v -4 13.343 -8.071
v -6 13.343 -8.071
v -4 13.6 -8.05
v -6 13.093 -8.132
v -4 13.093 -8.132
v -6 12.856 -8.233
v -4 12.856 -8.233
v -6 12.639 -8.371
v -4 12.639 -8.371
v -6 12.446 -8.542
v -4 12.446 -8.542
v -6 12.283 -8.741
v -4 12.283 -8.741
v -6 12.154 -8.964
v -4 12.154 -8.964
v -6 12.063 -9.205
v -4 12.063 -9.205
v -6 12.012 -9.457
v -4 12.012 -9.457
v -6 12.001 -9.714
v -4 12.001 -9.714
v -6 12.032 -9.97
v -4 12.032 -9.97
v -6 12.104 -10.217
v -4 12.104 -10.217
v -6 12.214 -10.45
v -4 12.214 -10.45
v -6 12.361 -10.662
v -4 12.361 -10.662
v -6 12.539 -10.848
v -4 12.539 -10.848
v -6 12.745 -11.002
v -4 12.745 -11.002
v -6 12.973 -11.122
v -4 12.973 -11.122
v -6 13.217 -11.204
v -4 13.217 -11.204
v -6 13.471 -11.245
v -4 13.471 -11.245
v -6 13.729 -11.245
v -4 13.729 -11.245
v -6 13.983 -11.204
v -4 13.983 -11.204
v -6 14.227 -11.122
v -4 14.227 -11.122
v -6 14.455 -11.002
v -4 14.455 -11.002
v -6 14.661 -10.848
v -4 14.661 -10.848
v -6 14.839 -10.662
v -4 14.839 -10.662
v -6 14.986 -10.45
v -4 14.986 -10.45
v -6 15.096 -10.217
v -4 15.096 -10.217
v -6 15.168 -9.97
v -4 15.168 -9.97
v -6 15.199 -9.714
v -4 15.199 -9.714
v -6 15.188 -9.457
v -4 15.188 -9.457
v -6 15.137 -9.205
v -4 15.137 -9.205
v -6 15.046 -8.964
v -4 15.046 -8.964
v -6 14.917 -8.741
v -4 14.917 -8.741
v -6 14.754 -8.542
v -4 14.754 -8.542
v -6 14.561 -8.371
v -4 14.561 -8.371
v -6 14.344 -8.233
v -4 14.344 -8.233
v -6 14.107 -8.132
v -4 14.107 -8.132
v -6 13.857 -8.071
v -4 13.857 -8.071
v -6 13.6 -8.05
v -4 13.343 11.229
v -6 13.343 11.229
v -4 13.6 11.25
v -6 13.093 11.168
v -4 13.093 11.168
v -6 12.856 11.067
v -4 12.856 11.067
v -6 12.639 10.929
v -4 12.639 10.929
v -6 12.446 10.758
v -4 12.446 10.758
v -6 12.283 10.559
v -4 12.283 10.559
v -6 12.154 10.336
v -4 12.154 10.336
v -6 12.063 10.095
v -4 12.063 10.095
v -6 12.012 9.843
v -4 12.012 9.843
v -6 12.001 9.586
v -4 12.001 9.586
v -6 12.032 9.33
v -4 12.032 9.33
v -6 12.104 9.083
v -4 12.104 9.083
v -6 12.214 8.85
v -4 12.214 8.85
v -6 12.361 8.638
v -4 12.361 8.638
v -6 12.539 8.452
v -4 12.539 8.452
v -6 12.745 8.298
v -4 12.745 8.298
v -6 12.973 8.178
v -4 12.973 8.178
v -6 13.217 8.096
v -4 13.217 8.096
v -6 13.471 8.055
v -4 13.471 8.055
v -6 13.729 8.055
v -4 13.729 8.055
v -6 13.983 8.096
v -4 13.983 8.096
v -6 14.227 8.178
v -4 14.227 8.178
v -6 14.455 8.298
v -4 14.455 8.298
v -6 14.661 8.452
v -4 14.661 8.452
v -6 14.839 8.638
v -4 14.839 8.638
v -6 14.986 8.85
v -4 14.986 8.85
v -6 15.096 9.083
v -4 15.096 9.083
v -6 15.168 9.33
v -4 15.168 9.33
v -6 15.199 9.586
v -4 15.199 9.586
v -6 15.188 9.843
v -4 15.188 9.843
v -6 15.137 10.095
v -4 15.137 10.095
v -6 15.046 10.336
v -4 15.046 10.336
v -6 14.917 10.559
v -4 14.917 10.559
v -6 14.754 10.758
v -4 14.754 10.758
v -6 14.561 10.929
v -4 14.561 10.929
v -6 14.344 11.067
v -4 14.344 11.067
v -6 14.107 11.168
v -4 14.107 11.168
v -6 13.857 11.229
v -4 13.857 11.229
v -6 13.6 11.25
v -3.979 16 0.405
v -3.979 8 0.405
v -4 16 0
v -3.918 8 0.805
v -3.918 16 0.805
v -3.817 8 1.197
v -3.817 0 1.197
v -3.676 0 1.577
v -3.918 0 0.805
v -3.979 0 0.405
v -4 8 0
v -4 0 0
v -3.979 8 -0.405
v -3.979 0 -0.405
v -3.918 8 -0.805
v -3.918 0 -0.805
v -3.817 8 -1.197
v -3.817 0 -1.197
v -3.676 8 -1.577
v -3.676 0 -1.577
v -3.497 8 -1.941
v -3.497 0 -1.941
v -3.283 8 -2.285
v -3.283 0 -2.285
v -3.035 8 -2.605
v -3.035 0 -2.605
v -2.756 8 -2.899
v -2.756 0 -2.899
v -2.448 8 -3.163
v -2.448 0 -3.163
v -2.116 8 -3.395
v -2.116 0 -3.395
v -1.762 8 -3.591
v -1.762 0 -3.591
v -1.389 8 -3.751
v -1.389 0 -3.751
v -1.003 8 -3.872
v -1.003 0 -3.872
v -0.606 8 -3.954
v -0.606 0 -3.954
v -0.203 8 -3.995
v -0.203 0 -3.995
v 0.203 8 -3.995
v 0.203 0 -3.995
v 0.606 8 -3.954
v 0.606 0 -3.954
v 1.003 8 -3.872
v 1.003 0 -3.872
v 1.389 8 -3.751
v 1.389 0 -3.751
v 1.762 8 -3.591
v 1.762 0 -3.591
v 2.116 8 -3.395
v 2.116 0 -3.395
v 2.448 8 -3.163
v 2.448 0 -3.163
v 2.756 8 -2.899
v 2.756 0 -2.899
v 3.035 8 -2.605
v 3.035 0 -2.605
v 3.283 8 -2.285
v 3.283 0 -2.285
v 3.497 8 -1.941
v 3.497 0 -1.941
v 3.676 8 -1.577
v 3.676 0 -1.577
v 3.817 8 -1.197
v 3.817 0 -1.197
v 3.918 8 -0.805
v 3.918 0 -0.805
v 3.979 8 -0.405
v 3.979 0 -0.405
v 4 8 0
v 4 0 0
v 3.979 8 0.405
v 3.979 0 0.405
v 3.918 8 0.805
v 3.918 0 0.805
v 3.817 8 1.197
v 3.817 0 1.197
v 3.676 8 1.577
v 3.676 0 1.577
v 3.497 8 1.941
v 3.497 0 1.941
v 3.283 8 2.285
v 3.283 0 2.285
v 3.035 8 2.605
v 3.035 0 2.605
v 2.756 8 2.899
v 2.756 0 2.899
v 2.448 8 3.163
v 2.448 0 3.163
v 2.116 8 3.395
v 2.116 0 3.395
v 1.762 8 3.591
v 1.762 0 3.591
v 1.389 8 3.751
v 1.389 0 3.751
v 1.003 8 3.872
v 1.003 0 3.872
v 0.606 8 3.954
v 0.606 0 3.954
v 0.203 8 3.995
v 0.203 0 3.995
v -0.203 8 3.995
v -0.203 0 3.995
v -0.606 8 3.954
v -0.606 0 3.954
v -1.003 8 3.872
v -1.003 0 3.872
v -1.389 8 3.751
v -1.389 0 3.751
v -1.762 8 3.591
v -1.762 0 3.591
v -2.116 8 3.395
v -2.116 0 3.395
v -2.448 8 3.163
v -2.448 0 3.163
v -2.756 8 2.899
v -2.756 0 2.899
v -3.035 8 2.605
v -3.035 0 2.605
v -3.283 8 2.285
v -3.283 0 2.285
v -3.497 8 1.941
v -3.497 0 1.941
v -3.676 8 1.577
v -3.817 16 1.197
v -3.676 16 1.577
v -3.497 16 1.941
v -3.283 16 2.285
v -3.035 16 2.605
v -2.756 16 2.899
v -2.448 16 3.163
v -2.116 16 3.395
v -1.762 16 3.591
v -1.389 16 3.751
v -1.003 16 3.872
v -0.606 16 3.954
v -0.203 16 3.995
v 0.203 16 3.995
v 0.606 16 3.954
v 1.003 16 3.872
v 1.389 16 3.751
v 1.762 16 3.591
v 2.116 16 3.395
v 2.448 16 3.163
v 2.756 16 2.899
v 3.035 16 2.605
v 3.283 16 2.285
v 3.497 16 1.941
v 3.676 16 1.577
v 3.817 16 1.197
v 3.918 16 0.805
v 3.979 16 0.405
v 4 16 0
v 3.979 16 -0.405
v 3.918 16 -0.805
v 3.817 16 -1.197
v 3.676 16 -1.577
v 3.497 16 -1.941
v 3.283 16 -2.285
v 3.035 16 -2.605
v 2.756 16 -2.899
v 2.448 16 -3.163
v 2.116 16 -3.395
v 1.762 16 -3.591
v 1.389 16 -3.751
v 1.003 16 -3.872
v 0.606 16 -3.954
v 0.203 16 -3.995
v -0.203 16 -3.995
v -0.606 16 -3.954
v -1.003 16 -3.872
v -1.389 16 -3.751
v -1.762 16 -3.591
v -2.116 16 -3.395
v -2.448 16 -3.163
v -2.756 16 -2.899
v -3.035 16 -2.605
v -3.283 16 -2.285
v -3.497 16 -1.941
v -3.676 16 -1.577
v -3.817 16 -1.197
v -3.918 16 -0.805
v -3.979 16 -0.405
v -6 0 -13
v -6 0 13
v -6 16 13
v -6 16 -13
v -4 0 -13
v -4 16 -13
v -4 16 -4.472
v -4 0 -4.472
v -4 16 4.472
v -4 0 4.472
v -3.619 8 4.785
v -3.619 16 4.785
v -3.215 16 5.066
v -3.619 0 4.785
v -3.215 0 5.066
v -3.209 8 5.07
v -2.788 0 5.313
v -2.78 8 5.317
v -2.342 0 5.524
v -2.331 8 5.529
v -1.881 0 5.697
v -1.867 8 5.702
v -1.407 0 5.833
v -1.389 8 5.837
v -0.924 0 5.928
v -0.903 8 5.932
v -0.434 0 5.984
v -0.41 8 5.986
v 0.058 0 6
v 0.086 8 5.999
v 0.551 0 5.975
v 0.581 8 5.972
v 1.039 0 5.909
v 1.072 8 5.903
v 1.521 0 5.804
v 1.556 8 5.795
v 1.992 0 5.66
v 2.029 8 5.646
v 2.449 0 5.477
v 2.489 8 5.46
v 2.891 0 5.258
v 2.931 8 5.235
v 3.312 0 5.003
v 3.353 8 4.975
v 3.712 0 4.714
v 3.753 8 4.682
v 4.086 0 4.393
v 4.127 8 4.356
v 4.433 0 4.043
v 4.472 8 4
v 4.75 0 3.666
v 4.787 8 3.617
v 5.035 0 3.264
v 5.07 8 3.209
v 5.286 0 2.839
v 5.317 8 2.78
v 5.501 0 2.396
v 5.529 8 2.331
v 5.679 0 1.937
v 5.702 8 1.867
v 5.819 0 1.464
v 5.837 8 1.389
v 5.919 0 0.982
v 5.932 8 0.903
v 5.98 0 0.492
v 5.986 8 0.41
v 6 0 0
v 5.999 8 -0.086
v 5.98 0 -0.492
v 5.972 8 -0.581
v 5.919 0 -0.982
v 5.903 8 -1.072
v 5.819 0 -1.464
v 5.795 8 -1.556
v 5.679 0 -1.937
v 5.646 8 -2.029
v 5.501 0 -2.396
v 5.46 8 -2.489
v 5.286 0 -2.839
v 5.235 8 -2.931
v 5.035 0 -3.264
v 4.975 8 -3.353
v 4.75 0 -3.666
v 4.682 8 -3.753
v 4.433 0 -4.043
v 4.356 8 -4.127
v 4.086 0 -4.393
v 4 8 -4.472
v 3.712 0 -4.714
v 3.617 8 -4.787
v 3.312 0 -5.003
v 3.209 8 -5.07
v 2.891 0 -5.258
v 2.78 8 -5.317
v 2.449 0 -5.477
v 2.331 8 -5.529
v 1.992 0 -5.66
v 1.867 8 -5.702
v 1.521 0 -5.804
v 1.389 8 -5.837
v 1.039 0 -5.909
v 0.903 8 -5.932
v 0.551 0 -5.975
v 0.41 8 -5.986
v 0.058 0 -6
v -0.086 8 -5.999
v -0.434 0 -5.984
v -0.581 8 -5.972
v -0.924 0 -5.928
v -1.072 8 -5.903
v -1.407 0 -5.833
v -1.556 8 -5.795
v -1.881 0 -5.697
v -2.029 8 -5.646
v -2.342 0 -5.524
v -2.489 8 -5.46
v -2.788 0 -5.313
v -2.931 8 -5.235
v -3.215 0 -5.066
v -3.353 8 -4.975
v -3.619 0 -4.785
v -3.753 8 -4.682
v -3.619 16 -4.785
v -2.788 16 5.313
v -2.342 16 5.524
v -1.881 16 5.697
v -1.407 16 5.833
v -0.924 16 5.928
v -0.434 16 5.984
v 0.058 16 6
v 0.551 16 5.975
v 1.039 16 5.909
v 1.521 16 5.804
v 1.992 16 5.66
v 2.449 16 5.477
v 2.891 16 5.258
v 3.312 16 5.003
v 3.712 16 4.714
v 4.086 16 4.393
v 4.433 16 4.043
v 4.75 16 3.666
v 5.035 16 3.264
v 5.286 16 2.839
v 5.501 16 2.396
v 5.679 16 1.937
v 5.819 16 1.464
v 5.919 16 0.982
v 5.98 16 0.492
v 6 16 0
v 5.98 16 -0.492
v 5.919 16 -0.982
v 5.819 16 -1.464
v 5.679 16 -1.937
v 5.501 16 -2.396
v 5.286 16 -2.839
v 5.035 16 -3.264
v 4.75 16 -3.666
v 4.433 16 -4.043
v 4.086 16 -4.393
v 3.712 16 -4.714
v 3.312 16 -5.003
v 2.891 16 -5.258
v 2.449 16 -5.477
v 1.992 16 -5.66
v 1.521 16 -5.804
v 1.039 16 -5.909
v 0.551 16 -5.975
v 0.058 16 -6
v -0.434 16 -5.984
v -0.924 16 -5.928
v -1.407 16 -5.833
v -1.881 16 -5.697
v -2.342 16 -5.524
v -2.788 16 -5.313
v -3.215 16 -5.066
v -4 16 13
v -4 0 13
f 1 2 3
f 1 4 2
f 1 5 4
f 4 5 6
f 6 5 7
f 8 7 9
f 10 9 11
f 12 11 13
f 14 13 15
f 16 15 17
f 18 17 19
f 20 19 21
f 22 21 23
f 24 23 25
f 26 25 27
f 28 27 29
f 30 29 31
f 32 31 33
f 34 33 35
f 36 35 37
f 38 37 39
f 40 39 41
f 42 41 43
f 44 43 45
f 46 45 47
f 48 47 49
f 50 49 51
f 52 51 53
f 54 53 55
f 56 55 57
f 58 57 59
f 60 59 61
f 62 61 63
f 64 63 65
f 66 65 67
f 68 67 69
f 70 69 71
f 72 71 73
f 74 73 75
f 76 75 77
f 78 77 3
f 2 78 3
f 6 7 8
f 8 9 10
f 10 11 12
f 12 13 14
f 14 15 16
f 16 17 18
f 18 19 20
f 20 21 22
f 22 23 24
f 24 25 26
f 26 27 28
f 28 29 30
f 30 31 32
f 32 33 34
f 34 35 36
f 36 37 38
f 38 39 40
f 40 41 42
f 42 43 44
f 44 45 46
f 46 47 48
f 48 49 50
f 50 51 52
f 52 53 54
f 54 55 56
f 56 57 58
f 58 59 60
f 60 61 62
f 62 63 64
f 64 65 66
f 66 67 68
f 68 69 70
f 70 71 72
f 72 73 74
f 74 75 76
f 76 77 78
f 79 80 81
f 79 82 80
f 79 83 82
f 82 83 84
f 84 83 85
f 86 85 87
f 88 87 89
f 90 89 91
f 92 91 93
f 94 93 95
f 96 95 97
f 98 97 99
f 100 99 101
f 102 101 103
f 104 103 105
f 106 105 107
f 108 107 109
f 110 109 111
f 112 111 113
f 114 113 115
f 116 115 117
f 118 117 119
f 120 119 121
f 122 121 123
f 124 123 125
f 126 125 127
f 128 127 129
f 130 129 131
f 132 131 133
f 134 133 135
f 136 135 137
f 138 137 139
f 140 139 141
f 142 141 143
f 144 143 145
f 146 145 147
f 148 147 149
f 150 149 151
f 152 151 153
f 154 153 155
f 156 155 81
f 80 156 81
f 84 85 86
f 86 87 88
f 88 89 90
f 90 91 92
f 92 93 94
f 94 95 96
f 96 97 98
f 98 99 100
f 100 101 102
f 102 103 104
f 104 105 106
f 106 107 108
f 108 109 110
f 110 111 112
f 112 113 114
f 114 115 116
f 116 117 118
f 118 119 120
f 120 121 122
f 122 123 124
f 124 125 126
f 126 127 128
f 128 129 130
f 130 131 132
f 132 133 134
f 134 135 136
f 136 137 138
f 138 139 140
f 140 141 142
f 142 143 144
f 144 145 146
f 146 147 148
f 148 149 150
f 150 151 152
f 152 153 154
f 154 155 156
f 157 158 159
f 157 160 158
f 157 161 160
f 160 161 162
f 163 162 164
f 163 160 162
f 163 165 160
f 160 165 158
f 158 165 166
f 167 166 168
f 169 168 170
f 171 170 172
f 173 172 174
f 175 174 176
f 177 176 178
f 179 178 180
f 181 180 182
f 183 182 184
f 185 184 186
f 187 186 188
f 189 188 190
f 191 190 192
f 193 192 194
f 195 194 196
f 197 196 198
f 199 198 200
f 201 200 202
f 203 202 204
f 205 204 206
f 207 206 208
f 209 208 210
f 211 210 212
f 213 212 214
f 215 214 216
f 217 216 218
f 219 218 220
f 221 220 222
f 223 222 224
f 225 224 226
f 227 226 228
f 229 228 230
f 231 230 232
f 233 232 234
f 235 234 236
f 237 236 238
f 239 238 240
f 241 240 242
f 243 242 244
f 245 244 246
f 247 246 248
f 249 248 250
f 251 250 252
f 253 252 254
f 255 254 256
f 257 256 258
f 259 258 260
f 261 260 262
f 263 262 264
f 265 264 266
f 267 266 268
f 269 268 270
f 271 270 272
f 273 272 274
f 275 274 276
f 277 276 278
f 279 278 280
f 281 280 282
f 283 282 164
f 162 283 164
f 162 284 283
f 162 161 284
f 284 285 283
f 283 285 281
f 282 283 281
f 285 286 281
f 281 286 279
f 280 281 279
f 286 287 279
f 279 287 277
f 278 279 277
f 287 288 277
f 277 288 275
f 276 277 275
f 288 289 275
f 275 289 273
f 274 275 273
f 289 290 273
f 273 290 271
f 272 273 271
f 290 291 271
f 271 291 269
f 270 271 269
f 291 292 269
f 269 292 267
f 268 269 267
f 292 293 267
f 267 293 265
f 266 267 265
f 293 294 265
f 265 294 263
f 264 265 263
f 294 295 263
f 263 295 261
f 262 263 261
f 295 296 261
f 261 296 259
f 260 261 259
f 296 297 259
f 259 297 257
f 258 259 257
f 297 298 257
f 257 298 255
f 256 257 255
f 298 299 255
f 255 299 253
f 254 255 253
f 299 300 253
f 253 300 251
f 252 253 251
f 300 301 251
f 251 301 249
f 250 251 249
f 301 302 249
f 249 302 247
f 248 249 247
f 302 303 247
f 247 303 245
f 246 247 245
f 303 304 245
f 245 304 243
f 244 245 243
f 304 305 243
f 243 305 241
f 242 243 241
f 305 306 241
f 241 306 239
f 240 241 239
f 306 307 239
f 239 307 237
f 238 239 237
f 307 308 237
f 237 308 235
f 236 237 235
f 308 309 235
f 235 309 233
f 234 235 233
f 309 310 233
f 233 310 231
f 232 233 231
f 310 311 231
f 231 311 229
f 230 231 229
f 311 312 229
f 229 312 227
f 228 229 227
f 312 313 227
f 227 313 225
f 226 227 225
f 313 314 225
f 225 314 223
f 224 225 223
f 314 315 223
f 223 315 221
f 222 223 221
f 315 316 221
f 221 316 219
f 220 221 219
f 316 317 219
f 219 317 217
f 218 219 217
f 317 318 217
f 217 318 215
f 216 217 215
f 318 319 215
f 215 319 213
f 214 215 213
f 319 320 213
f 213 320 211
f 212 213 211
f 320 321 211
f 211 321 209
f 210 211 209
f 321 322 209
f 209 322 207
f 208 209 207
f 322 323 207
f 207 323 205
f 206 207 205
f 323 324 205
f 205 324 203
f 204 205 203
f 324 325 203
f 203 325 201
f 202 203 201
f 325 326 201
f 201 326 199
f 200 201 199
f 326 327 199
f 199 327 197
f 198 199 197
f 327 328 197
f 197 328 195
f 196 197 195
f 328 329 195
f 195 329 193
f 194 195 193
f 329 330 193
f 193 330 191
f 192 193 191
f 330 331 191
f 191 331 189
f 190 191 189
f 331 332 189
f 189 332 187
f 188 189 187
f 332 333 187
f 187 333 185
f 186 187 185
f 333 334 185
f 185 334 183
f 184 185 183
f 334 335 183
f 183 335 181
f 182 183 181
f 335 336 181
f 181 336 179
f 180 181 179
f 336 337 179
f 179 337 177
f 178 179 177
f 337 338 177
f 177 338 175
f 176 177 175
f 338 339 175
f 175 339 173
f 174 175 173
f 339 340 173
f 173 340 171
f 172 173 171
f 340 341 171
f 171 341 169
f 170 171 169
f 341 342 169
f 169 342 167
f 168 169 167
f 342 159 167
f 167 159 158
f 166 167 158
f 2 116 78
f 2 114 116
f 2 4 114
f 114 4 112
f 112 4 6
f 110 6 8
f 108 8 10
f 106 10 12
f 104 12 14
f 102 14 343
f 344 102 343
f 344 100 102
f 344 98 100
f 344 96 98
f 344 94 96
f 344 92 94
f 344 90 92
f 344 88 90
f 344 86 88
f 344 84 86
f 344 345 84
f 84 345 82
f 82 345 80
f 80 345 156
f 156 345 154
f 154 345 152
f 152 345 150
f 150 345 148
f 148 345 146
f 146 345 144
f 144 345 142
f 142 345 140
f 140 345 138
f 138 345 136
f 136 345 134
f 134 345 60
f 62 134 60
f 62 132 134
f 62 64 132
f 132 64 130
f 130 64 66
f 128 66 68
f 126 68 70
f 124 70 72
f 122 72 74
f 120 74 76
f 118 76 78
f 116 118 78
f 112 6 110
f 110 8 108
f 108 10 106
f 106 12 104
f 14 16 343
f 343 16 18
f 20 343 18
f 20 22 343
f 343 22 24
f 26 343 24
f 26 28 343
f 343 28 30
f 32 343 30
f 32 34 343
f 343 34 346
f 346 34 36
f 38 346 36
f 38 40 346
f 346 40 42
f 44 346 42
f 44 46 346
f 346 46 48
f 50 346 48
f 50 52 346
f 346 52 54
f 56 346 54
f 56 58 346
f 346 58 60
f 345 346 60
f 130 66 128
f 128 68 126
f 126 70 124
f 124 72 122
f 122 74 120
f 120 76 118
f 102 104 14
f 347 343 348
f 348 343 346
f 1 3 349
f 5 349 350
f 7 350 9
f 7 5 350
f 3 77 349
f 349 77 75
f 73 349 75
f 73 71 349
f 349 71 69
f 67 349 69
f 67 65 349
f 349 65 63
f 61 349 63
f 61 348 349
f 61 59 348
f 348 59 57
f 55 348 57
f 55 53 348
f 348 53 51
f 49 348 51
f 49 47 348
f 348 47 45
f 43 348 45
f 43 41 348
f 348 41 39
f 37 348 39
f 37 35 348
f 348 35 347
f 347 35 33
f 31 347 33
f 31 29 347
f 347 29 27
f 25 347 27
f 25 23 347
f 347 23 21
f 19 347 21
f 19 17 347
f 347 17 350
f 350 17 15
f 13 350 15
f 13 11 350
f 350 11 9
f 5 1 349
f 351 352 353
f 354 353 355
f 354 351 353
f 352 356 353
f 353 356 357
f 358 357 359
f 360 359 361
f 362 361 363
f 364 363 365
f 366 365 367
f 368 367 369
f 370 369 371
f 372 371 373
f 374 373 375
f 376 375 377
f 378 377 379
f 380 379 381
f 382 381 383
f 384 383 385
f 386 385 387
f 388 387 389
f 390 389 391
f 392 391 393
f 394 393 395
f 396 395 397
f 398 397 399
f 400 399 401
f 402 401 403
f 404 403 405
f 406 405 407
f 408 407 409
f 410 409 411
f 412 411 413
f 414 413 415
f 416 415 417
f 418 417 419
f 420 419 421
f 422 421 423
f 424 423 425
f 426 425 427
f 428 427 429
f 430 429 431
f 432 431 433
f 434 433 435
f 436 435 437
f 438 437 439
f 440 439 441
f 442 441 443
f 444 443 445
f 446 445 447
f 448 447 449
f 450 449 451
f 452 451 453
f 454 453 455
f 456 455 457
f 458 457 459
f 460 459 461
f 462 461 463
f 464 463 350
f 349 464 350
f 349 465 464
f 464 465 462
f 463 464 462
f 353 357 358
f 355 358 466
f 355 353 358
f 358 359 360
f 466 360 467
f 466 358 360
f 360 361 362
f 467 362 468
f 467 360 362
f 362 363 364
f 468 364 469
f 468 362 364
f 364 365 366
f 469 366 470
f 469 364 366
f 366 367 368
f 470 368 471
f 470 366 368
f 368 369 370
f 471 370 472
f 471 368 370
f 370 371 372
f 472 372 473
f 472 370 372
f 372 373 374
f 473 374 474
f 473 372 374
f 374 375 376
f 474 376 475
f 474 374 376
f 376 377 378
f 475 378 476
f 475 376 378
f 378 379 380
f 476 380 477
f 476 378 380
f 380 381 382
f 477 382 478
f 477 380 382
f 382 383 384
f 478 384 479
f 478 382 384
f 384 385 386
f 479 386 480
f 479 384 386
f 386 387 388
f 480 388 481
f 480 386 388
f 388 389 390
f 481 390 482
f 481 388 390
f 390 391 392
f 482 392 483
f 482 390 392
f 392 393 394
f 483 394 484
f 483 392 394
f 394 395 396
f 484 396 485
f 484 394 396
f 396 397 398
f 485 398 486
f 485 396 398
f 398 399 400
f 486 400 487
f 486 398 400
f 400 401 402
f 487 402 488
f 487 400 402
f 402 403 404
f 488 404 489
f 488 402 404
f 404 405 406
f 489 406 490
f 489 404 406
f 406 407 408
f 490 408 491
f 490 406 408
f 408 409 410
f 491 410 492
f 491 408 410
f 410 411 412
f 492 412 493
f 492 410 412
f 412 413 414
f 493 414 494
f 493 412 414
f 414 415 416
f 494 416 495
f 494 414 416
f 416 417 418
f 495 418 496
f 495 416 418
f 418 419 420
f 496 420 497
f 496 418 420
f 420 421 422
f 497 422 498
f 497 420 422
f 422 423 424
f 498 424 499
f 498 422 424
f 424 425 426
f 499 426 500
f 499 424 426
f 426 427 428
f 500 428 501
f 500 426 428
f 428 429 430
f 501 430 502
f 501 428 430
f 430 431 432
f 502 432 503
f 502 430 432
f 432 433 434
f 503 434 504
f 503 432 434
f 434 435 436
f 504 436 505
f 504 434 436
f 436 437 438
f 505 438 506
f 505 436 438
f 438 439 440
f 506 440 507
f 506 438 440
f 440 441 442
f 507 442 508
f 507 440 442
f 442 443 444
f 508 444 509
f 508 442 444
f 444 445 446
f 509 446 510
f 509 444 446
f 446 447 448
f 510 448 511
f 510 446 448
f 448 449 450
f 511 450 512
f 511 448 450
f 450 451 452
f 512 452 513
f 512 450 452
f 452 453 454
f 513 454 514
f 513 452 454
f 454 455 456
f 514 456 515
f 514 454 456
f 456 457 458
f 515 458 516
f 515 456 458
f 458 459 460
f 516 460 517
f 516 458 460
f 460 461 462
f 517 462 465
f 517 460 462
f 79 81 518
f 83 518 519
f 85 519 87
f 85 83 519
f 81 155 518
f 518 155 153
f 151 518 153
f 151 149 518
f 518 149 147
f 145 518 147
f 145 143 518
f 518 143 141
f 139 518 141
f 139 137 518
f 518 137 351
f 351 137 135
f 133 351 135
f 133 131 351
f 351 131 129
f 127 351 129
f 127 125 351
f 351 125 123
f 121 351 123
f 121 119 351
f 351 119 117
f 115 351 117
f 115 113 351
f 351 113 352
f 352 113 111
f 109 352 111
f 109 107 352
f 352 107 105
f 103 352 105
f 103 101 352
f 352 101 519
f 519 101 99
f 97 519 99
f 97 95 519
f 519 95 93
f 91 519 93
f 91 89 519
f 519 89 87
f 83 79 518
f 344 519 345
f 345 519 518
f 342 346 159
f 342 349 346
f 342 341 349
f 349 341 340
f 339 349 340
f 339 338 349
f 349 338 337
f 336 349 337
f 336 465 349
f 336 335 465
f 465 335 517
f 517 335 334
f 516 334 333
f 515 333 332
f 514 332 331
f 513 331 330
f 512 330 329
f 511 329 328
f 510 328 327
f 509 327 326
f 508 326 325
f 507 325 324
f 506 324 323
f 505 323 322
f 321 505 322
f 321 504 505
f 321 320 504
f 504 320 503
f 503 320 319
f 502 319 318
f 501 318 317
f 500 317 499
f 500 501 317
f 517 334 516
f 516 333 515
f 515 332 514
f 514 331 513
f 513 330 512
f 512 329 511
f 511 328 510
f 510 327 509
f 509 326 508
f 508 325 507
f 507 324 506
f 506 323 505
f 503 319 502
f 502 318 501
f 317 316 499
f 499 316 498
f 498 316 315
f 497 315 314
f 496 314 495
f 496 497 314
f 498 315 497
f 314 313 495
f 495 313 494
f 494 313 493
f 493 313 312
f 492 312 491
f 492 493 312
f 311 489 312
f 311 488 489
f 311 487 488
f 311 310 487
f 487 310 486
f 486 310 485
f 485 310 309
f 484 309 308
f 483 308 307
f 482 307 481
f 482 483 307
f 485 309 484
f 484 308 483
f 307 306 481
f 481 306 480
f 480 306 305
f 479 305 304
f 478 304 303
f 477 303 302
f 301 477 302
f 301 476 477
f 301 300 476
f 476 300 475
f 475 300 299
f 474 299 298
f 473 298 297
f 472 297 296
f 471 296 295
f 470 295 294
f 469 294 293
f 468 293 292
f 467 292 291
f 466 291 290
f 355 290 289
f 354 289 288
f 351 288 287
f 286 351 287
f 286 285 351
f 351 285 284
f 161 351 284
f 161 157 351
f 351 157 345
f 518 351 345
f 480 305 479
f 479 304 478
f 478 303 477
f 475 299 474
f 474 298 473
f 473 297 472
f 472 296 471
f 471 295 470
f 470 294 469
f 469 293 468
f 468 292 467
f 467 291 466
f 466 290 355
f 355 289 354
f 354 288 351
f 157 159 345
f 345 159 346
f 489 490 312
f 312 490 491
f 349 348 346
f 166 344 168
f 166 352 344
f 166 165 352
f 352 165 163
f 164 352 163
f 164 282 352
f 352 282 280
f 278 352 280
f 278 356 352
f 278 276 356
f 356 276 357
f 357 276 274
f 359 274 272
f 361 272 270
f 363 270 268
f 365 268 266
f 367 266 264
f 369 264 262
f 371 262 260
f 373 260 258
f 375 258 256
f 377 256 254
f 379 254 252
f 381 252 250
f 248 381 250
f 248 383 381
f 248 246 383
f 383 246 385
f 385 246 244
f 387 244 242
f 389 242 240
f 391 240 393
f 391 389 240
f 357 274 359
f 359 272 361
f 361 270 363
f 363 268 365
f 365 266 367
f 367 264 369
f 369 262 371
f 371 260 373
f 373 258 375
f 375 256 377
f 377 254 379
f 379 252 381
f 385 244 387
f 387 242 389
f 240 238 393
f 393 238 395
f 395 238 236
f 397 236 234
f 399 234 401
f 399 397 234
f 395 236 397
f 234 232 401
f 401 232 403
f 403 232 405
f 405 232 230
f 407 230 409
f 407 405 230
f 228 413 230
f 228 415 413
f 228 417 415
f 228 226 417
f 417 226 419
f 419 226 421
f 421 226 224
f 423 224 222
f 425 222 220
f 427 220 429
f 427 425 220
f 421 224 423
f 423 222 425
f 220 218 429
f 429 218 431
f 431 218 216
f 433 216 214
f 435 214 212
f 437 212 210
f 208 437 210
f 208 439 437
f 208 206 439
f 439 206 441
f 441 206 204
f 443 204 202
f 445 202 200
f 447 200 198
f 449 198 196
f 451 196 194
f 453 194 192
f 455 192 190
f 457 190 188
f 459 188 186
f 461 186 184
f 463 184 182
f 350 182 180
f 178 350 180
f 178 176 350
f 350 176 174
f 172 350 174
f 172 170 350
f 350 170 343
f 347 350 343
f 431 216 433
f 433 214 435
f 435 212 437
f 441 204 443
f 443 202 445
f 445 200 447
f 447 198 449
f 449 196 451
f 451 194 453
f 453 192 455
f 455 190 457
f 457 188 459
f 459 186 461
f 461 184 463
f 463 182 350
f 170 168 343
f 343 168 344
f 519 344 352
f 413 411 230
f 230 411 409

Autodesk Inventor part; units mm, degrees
ref_plane "YZ Plane" through (0, 0, 0) normal (1, 0, 0) x (0, 1, 0)
ref_plane "XZ Plane" through (0, 0, 0) normal (0, 1, 0) x (-1, 0, 0)
ref_plane "XY Plane" through (0, 0, 0) normal (0, 0, 1) x (1, 0, 0)
sketch "Sketch1" plane through (0, 0, 0) normal (0, 1, 0) x (-1, 0, 0)
  circle A0 centre (0, 0) radius 4
  line L0 (6, 13) -> (4, 13)
  line L1 (6, -13) -> (4, -13)
  arc A1 (4, 4.4721) -> (4, -4.4721) centre (0, 0) ccw
  line L2 (4, 13) -> (4, 4.4721)
  line L3 (4, -4.4721) -> (4, -13)
  line L4 (6, 13) -> (6, -13)
  dimension "d0" = 8
  dimension "d2" = 26
  dimension "d3" = 2
extrude "Extrusion1" add sketch "Sketch1" along normal blind 16
sketch "Sketch2" plane through (-6, 0, -13) normal (-1, 0, 0) x (0, 0, 1)
  circle A0 centre (3.35, 13.6) radius 1.6
  circle A1 centre (22.65, 13.6) radius 1.6
  line L0 (8.5279, 16) -> (0, 16) projected
  line L1 (0, 16) -> (26, 16) projected
  point P0 (13, 0)
  dimension "d10" = 3.2
  dimension "d11" = 3.2
  dimension "d14" = 2.4
  dimension "d15" = 2.4
extrude "Extrusion2" cut sketch "Sketch2" against normal blind 16
properties part number "Support endStop v1"
